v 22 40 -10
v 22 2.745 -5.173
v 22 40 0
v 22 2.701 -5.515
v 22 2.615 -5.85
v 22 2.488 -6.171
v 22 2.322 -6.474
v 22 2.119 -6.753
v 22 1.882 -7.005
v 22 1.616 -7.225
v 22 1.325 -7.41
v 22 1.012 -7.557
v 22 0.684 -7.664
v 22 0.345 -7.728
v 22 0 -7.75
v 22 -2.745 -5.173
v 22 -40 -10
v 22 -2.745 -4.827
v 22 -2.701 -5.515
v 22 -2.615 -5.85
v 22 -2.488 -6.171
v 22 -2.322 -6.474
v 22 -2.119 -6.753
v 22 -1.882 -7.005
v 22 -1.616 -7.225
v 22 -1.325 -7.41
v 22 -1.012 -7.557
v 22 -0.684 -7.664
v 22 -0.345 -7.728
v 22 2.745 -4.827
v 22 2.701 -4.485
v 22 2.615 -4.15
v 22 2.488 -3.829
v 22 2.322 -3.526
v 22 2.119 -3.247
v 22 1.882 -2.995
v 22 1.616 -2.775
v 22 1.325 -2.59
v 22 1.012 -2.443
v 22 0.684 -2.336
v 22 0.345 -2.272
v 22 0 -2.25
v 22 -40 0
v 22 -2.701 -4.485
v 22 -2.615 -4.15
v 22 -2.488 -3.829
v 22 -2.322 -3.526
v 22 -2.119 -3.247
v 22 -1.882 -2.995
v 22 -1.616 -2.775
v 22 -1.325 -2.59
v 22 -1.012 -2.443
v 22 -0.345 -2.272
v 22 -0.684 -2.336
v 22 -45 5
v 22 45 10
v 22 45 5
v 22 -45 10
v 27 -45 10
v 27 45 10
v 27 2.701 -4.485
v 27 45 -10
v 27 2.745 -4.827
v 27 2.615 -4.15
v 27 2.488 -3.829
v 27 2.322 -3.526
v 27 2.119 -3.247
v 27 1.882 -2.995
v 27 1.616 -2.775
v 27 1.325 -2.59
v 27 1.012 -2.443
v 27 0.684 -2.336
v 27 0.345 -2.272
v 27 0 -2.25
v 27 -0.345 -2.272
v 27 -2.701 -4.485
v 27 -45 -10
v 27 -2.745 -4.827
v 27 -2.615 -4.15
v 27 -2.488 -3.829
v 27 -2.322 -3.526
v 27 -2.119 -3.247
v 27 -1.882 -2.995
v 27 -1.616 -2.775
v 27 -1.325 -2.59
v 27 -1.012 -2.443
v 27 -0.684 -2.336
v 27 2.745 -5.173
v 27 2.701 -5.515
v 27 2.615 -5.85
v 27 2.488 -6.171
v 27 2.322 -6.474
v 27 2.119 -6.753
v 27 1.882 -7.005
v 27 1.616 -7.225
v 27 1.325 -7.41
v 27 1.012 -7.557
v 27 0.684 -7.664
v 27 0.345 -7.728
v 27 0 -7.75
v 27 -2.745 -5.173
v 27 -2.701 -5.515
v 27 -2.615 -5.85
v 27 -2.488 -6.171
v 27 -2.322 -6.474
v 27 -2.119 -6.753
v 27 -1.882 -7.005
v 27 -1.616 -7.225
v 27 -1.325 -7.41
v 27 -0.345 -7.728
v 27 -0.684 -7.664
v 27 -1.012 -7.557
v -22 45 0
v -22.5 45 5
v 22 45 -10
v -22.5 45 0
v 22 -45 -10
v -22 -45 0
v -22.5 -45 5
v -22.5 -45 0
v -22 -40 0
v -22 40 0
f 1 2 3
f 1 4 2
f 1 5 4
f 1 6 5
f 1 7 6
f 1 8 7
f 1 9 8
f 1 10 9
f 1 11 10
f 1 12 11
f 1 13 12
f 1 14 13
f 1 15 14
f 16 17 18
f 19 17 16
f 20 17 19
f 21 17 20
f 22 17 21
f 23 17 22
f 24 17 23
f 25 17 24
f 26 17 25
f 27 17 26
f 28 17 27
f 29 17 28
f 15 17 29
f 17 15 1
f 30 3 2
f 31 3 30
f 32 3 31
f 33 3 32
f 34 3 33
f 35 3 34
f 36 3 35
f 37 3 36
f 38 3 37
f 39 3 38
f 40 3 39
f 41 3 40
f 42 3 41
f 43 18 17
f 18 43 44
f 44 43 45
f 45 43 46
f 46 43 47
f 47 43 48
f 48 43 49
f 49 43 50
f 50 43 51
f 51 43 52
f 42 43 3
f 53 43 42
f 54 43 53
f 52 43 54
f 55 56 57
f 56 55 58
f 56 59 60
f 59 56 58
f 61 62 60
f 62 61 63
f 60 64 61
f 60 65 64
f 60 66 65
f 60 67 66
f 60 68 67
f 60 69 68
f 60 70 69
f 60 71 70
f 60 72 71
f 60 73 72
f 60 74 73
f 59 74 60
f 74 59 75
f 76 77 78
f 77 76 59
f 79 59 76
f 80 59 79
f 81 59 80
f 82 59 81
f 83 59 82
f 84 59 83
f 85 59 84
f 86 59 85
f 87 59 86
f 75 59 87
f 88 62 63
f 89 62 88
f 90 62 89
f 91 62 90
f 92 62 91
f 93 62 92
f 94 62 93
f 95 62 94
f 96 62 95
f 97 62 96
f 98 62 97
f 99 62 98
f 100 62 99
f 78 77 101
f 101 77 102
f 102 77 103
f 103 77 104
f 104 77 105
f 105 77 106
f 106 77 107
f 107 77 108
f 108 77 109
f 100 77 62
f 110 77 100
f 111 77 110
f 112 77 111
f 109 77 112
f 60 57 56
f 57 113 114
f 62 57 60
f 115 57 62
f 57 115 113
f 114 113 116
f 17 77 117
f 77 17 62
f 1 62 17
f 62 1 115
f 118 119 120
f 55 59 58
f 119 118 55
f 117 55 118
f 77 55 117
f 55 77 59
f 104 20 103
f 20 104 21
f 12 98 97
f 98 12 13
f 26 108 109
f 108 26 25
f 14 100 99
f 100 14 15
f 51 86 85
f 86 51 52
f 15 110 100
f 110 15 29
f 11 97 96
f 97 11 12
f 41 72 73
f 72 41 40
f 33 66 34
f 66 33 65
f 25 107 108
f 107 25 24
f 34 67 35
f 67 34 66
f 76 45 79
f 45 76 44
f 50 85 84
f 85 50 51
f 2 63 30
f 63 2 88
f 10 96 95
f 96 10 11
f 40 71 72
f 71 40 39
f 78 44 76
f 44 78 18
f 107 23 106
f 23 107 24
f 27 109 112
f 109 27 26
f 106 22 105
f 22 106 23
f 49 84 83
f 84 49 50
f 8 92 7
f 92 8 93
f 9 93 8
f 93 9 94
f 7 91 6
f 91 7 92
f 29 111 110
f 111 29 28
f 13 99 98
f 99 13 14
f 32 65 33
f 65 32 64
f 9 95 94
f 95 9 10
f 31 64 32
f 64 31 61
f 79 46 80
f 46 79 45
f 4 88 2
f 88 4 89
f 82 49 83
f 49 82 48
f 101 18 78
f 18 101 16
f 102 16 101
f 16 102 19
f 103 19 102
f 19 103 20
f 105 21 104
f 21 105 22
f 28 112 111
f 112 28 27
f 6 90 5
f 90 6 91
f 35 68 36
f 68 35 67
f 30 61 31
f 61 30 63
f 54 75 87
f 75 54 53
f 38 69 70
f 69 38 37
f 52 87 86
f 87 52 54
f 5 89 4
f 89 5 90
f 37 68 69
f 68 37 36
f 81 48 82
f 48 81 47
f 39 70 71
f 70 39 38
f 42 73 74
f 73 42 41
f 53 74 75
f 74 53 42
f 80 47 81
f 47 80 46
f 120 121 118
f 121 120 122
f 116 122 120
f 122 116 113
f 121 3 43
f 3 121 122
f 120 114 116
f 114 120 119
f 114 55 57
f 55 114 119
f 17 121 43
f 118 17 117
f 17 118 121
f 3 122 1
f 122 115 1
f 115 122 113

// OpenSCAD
$fn = 50;

magnet_rad = 26/2;
pin_rad = 5.5/2;
thick = 5;



//base
linear_extrude(thick)
square([45, 90], center=true);


//virt
difference(){
	union(){
		translate([22,0,0])
		rotate([0,90,0])
		linear_extrude(thick)
		square([20,90], center=true);
	}
	
	//string
	translate([20,0,-5])
	rotate([0,90,0])
	cylinder(h=20, r=pin_rad, center=true);
	
	//mag holes
	
}


translate([0,-45+thick,0])
gusset();

translate([0,45,0])
gusset();



module gusset(){
rotate([90,0,0])
linear_extrude(thick)
polygon(points=[
	[-22,0],
	[22,-10],
	[22,0]
]);
}
